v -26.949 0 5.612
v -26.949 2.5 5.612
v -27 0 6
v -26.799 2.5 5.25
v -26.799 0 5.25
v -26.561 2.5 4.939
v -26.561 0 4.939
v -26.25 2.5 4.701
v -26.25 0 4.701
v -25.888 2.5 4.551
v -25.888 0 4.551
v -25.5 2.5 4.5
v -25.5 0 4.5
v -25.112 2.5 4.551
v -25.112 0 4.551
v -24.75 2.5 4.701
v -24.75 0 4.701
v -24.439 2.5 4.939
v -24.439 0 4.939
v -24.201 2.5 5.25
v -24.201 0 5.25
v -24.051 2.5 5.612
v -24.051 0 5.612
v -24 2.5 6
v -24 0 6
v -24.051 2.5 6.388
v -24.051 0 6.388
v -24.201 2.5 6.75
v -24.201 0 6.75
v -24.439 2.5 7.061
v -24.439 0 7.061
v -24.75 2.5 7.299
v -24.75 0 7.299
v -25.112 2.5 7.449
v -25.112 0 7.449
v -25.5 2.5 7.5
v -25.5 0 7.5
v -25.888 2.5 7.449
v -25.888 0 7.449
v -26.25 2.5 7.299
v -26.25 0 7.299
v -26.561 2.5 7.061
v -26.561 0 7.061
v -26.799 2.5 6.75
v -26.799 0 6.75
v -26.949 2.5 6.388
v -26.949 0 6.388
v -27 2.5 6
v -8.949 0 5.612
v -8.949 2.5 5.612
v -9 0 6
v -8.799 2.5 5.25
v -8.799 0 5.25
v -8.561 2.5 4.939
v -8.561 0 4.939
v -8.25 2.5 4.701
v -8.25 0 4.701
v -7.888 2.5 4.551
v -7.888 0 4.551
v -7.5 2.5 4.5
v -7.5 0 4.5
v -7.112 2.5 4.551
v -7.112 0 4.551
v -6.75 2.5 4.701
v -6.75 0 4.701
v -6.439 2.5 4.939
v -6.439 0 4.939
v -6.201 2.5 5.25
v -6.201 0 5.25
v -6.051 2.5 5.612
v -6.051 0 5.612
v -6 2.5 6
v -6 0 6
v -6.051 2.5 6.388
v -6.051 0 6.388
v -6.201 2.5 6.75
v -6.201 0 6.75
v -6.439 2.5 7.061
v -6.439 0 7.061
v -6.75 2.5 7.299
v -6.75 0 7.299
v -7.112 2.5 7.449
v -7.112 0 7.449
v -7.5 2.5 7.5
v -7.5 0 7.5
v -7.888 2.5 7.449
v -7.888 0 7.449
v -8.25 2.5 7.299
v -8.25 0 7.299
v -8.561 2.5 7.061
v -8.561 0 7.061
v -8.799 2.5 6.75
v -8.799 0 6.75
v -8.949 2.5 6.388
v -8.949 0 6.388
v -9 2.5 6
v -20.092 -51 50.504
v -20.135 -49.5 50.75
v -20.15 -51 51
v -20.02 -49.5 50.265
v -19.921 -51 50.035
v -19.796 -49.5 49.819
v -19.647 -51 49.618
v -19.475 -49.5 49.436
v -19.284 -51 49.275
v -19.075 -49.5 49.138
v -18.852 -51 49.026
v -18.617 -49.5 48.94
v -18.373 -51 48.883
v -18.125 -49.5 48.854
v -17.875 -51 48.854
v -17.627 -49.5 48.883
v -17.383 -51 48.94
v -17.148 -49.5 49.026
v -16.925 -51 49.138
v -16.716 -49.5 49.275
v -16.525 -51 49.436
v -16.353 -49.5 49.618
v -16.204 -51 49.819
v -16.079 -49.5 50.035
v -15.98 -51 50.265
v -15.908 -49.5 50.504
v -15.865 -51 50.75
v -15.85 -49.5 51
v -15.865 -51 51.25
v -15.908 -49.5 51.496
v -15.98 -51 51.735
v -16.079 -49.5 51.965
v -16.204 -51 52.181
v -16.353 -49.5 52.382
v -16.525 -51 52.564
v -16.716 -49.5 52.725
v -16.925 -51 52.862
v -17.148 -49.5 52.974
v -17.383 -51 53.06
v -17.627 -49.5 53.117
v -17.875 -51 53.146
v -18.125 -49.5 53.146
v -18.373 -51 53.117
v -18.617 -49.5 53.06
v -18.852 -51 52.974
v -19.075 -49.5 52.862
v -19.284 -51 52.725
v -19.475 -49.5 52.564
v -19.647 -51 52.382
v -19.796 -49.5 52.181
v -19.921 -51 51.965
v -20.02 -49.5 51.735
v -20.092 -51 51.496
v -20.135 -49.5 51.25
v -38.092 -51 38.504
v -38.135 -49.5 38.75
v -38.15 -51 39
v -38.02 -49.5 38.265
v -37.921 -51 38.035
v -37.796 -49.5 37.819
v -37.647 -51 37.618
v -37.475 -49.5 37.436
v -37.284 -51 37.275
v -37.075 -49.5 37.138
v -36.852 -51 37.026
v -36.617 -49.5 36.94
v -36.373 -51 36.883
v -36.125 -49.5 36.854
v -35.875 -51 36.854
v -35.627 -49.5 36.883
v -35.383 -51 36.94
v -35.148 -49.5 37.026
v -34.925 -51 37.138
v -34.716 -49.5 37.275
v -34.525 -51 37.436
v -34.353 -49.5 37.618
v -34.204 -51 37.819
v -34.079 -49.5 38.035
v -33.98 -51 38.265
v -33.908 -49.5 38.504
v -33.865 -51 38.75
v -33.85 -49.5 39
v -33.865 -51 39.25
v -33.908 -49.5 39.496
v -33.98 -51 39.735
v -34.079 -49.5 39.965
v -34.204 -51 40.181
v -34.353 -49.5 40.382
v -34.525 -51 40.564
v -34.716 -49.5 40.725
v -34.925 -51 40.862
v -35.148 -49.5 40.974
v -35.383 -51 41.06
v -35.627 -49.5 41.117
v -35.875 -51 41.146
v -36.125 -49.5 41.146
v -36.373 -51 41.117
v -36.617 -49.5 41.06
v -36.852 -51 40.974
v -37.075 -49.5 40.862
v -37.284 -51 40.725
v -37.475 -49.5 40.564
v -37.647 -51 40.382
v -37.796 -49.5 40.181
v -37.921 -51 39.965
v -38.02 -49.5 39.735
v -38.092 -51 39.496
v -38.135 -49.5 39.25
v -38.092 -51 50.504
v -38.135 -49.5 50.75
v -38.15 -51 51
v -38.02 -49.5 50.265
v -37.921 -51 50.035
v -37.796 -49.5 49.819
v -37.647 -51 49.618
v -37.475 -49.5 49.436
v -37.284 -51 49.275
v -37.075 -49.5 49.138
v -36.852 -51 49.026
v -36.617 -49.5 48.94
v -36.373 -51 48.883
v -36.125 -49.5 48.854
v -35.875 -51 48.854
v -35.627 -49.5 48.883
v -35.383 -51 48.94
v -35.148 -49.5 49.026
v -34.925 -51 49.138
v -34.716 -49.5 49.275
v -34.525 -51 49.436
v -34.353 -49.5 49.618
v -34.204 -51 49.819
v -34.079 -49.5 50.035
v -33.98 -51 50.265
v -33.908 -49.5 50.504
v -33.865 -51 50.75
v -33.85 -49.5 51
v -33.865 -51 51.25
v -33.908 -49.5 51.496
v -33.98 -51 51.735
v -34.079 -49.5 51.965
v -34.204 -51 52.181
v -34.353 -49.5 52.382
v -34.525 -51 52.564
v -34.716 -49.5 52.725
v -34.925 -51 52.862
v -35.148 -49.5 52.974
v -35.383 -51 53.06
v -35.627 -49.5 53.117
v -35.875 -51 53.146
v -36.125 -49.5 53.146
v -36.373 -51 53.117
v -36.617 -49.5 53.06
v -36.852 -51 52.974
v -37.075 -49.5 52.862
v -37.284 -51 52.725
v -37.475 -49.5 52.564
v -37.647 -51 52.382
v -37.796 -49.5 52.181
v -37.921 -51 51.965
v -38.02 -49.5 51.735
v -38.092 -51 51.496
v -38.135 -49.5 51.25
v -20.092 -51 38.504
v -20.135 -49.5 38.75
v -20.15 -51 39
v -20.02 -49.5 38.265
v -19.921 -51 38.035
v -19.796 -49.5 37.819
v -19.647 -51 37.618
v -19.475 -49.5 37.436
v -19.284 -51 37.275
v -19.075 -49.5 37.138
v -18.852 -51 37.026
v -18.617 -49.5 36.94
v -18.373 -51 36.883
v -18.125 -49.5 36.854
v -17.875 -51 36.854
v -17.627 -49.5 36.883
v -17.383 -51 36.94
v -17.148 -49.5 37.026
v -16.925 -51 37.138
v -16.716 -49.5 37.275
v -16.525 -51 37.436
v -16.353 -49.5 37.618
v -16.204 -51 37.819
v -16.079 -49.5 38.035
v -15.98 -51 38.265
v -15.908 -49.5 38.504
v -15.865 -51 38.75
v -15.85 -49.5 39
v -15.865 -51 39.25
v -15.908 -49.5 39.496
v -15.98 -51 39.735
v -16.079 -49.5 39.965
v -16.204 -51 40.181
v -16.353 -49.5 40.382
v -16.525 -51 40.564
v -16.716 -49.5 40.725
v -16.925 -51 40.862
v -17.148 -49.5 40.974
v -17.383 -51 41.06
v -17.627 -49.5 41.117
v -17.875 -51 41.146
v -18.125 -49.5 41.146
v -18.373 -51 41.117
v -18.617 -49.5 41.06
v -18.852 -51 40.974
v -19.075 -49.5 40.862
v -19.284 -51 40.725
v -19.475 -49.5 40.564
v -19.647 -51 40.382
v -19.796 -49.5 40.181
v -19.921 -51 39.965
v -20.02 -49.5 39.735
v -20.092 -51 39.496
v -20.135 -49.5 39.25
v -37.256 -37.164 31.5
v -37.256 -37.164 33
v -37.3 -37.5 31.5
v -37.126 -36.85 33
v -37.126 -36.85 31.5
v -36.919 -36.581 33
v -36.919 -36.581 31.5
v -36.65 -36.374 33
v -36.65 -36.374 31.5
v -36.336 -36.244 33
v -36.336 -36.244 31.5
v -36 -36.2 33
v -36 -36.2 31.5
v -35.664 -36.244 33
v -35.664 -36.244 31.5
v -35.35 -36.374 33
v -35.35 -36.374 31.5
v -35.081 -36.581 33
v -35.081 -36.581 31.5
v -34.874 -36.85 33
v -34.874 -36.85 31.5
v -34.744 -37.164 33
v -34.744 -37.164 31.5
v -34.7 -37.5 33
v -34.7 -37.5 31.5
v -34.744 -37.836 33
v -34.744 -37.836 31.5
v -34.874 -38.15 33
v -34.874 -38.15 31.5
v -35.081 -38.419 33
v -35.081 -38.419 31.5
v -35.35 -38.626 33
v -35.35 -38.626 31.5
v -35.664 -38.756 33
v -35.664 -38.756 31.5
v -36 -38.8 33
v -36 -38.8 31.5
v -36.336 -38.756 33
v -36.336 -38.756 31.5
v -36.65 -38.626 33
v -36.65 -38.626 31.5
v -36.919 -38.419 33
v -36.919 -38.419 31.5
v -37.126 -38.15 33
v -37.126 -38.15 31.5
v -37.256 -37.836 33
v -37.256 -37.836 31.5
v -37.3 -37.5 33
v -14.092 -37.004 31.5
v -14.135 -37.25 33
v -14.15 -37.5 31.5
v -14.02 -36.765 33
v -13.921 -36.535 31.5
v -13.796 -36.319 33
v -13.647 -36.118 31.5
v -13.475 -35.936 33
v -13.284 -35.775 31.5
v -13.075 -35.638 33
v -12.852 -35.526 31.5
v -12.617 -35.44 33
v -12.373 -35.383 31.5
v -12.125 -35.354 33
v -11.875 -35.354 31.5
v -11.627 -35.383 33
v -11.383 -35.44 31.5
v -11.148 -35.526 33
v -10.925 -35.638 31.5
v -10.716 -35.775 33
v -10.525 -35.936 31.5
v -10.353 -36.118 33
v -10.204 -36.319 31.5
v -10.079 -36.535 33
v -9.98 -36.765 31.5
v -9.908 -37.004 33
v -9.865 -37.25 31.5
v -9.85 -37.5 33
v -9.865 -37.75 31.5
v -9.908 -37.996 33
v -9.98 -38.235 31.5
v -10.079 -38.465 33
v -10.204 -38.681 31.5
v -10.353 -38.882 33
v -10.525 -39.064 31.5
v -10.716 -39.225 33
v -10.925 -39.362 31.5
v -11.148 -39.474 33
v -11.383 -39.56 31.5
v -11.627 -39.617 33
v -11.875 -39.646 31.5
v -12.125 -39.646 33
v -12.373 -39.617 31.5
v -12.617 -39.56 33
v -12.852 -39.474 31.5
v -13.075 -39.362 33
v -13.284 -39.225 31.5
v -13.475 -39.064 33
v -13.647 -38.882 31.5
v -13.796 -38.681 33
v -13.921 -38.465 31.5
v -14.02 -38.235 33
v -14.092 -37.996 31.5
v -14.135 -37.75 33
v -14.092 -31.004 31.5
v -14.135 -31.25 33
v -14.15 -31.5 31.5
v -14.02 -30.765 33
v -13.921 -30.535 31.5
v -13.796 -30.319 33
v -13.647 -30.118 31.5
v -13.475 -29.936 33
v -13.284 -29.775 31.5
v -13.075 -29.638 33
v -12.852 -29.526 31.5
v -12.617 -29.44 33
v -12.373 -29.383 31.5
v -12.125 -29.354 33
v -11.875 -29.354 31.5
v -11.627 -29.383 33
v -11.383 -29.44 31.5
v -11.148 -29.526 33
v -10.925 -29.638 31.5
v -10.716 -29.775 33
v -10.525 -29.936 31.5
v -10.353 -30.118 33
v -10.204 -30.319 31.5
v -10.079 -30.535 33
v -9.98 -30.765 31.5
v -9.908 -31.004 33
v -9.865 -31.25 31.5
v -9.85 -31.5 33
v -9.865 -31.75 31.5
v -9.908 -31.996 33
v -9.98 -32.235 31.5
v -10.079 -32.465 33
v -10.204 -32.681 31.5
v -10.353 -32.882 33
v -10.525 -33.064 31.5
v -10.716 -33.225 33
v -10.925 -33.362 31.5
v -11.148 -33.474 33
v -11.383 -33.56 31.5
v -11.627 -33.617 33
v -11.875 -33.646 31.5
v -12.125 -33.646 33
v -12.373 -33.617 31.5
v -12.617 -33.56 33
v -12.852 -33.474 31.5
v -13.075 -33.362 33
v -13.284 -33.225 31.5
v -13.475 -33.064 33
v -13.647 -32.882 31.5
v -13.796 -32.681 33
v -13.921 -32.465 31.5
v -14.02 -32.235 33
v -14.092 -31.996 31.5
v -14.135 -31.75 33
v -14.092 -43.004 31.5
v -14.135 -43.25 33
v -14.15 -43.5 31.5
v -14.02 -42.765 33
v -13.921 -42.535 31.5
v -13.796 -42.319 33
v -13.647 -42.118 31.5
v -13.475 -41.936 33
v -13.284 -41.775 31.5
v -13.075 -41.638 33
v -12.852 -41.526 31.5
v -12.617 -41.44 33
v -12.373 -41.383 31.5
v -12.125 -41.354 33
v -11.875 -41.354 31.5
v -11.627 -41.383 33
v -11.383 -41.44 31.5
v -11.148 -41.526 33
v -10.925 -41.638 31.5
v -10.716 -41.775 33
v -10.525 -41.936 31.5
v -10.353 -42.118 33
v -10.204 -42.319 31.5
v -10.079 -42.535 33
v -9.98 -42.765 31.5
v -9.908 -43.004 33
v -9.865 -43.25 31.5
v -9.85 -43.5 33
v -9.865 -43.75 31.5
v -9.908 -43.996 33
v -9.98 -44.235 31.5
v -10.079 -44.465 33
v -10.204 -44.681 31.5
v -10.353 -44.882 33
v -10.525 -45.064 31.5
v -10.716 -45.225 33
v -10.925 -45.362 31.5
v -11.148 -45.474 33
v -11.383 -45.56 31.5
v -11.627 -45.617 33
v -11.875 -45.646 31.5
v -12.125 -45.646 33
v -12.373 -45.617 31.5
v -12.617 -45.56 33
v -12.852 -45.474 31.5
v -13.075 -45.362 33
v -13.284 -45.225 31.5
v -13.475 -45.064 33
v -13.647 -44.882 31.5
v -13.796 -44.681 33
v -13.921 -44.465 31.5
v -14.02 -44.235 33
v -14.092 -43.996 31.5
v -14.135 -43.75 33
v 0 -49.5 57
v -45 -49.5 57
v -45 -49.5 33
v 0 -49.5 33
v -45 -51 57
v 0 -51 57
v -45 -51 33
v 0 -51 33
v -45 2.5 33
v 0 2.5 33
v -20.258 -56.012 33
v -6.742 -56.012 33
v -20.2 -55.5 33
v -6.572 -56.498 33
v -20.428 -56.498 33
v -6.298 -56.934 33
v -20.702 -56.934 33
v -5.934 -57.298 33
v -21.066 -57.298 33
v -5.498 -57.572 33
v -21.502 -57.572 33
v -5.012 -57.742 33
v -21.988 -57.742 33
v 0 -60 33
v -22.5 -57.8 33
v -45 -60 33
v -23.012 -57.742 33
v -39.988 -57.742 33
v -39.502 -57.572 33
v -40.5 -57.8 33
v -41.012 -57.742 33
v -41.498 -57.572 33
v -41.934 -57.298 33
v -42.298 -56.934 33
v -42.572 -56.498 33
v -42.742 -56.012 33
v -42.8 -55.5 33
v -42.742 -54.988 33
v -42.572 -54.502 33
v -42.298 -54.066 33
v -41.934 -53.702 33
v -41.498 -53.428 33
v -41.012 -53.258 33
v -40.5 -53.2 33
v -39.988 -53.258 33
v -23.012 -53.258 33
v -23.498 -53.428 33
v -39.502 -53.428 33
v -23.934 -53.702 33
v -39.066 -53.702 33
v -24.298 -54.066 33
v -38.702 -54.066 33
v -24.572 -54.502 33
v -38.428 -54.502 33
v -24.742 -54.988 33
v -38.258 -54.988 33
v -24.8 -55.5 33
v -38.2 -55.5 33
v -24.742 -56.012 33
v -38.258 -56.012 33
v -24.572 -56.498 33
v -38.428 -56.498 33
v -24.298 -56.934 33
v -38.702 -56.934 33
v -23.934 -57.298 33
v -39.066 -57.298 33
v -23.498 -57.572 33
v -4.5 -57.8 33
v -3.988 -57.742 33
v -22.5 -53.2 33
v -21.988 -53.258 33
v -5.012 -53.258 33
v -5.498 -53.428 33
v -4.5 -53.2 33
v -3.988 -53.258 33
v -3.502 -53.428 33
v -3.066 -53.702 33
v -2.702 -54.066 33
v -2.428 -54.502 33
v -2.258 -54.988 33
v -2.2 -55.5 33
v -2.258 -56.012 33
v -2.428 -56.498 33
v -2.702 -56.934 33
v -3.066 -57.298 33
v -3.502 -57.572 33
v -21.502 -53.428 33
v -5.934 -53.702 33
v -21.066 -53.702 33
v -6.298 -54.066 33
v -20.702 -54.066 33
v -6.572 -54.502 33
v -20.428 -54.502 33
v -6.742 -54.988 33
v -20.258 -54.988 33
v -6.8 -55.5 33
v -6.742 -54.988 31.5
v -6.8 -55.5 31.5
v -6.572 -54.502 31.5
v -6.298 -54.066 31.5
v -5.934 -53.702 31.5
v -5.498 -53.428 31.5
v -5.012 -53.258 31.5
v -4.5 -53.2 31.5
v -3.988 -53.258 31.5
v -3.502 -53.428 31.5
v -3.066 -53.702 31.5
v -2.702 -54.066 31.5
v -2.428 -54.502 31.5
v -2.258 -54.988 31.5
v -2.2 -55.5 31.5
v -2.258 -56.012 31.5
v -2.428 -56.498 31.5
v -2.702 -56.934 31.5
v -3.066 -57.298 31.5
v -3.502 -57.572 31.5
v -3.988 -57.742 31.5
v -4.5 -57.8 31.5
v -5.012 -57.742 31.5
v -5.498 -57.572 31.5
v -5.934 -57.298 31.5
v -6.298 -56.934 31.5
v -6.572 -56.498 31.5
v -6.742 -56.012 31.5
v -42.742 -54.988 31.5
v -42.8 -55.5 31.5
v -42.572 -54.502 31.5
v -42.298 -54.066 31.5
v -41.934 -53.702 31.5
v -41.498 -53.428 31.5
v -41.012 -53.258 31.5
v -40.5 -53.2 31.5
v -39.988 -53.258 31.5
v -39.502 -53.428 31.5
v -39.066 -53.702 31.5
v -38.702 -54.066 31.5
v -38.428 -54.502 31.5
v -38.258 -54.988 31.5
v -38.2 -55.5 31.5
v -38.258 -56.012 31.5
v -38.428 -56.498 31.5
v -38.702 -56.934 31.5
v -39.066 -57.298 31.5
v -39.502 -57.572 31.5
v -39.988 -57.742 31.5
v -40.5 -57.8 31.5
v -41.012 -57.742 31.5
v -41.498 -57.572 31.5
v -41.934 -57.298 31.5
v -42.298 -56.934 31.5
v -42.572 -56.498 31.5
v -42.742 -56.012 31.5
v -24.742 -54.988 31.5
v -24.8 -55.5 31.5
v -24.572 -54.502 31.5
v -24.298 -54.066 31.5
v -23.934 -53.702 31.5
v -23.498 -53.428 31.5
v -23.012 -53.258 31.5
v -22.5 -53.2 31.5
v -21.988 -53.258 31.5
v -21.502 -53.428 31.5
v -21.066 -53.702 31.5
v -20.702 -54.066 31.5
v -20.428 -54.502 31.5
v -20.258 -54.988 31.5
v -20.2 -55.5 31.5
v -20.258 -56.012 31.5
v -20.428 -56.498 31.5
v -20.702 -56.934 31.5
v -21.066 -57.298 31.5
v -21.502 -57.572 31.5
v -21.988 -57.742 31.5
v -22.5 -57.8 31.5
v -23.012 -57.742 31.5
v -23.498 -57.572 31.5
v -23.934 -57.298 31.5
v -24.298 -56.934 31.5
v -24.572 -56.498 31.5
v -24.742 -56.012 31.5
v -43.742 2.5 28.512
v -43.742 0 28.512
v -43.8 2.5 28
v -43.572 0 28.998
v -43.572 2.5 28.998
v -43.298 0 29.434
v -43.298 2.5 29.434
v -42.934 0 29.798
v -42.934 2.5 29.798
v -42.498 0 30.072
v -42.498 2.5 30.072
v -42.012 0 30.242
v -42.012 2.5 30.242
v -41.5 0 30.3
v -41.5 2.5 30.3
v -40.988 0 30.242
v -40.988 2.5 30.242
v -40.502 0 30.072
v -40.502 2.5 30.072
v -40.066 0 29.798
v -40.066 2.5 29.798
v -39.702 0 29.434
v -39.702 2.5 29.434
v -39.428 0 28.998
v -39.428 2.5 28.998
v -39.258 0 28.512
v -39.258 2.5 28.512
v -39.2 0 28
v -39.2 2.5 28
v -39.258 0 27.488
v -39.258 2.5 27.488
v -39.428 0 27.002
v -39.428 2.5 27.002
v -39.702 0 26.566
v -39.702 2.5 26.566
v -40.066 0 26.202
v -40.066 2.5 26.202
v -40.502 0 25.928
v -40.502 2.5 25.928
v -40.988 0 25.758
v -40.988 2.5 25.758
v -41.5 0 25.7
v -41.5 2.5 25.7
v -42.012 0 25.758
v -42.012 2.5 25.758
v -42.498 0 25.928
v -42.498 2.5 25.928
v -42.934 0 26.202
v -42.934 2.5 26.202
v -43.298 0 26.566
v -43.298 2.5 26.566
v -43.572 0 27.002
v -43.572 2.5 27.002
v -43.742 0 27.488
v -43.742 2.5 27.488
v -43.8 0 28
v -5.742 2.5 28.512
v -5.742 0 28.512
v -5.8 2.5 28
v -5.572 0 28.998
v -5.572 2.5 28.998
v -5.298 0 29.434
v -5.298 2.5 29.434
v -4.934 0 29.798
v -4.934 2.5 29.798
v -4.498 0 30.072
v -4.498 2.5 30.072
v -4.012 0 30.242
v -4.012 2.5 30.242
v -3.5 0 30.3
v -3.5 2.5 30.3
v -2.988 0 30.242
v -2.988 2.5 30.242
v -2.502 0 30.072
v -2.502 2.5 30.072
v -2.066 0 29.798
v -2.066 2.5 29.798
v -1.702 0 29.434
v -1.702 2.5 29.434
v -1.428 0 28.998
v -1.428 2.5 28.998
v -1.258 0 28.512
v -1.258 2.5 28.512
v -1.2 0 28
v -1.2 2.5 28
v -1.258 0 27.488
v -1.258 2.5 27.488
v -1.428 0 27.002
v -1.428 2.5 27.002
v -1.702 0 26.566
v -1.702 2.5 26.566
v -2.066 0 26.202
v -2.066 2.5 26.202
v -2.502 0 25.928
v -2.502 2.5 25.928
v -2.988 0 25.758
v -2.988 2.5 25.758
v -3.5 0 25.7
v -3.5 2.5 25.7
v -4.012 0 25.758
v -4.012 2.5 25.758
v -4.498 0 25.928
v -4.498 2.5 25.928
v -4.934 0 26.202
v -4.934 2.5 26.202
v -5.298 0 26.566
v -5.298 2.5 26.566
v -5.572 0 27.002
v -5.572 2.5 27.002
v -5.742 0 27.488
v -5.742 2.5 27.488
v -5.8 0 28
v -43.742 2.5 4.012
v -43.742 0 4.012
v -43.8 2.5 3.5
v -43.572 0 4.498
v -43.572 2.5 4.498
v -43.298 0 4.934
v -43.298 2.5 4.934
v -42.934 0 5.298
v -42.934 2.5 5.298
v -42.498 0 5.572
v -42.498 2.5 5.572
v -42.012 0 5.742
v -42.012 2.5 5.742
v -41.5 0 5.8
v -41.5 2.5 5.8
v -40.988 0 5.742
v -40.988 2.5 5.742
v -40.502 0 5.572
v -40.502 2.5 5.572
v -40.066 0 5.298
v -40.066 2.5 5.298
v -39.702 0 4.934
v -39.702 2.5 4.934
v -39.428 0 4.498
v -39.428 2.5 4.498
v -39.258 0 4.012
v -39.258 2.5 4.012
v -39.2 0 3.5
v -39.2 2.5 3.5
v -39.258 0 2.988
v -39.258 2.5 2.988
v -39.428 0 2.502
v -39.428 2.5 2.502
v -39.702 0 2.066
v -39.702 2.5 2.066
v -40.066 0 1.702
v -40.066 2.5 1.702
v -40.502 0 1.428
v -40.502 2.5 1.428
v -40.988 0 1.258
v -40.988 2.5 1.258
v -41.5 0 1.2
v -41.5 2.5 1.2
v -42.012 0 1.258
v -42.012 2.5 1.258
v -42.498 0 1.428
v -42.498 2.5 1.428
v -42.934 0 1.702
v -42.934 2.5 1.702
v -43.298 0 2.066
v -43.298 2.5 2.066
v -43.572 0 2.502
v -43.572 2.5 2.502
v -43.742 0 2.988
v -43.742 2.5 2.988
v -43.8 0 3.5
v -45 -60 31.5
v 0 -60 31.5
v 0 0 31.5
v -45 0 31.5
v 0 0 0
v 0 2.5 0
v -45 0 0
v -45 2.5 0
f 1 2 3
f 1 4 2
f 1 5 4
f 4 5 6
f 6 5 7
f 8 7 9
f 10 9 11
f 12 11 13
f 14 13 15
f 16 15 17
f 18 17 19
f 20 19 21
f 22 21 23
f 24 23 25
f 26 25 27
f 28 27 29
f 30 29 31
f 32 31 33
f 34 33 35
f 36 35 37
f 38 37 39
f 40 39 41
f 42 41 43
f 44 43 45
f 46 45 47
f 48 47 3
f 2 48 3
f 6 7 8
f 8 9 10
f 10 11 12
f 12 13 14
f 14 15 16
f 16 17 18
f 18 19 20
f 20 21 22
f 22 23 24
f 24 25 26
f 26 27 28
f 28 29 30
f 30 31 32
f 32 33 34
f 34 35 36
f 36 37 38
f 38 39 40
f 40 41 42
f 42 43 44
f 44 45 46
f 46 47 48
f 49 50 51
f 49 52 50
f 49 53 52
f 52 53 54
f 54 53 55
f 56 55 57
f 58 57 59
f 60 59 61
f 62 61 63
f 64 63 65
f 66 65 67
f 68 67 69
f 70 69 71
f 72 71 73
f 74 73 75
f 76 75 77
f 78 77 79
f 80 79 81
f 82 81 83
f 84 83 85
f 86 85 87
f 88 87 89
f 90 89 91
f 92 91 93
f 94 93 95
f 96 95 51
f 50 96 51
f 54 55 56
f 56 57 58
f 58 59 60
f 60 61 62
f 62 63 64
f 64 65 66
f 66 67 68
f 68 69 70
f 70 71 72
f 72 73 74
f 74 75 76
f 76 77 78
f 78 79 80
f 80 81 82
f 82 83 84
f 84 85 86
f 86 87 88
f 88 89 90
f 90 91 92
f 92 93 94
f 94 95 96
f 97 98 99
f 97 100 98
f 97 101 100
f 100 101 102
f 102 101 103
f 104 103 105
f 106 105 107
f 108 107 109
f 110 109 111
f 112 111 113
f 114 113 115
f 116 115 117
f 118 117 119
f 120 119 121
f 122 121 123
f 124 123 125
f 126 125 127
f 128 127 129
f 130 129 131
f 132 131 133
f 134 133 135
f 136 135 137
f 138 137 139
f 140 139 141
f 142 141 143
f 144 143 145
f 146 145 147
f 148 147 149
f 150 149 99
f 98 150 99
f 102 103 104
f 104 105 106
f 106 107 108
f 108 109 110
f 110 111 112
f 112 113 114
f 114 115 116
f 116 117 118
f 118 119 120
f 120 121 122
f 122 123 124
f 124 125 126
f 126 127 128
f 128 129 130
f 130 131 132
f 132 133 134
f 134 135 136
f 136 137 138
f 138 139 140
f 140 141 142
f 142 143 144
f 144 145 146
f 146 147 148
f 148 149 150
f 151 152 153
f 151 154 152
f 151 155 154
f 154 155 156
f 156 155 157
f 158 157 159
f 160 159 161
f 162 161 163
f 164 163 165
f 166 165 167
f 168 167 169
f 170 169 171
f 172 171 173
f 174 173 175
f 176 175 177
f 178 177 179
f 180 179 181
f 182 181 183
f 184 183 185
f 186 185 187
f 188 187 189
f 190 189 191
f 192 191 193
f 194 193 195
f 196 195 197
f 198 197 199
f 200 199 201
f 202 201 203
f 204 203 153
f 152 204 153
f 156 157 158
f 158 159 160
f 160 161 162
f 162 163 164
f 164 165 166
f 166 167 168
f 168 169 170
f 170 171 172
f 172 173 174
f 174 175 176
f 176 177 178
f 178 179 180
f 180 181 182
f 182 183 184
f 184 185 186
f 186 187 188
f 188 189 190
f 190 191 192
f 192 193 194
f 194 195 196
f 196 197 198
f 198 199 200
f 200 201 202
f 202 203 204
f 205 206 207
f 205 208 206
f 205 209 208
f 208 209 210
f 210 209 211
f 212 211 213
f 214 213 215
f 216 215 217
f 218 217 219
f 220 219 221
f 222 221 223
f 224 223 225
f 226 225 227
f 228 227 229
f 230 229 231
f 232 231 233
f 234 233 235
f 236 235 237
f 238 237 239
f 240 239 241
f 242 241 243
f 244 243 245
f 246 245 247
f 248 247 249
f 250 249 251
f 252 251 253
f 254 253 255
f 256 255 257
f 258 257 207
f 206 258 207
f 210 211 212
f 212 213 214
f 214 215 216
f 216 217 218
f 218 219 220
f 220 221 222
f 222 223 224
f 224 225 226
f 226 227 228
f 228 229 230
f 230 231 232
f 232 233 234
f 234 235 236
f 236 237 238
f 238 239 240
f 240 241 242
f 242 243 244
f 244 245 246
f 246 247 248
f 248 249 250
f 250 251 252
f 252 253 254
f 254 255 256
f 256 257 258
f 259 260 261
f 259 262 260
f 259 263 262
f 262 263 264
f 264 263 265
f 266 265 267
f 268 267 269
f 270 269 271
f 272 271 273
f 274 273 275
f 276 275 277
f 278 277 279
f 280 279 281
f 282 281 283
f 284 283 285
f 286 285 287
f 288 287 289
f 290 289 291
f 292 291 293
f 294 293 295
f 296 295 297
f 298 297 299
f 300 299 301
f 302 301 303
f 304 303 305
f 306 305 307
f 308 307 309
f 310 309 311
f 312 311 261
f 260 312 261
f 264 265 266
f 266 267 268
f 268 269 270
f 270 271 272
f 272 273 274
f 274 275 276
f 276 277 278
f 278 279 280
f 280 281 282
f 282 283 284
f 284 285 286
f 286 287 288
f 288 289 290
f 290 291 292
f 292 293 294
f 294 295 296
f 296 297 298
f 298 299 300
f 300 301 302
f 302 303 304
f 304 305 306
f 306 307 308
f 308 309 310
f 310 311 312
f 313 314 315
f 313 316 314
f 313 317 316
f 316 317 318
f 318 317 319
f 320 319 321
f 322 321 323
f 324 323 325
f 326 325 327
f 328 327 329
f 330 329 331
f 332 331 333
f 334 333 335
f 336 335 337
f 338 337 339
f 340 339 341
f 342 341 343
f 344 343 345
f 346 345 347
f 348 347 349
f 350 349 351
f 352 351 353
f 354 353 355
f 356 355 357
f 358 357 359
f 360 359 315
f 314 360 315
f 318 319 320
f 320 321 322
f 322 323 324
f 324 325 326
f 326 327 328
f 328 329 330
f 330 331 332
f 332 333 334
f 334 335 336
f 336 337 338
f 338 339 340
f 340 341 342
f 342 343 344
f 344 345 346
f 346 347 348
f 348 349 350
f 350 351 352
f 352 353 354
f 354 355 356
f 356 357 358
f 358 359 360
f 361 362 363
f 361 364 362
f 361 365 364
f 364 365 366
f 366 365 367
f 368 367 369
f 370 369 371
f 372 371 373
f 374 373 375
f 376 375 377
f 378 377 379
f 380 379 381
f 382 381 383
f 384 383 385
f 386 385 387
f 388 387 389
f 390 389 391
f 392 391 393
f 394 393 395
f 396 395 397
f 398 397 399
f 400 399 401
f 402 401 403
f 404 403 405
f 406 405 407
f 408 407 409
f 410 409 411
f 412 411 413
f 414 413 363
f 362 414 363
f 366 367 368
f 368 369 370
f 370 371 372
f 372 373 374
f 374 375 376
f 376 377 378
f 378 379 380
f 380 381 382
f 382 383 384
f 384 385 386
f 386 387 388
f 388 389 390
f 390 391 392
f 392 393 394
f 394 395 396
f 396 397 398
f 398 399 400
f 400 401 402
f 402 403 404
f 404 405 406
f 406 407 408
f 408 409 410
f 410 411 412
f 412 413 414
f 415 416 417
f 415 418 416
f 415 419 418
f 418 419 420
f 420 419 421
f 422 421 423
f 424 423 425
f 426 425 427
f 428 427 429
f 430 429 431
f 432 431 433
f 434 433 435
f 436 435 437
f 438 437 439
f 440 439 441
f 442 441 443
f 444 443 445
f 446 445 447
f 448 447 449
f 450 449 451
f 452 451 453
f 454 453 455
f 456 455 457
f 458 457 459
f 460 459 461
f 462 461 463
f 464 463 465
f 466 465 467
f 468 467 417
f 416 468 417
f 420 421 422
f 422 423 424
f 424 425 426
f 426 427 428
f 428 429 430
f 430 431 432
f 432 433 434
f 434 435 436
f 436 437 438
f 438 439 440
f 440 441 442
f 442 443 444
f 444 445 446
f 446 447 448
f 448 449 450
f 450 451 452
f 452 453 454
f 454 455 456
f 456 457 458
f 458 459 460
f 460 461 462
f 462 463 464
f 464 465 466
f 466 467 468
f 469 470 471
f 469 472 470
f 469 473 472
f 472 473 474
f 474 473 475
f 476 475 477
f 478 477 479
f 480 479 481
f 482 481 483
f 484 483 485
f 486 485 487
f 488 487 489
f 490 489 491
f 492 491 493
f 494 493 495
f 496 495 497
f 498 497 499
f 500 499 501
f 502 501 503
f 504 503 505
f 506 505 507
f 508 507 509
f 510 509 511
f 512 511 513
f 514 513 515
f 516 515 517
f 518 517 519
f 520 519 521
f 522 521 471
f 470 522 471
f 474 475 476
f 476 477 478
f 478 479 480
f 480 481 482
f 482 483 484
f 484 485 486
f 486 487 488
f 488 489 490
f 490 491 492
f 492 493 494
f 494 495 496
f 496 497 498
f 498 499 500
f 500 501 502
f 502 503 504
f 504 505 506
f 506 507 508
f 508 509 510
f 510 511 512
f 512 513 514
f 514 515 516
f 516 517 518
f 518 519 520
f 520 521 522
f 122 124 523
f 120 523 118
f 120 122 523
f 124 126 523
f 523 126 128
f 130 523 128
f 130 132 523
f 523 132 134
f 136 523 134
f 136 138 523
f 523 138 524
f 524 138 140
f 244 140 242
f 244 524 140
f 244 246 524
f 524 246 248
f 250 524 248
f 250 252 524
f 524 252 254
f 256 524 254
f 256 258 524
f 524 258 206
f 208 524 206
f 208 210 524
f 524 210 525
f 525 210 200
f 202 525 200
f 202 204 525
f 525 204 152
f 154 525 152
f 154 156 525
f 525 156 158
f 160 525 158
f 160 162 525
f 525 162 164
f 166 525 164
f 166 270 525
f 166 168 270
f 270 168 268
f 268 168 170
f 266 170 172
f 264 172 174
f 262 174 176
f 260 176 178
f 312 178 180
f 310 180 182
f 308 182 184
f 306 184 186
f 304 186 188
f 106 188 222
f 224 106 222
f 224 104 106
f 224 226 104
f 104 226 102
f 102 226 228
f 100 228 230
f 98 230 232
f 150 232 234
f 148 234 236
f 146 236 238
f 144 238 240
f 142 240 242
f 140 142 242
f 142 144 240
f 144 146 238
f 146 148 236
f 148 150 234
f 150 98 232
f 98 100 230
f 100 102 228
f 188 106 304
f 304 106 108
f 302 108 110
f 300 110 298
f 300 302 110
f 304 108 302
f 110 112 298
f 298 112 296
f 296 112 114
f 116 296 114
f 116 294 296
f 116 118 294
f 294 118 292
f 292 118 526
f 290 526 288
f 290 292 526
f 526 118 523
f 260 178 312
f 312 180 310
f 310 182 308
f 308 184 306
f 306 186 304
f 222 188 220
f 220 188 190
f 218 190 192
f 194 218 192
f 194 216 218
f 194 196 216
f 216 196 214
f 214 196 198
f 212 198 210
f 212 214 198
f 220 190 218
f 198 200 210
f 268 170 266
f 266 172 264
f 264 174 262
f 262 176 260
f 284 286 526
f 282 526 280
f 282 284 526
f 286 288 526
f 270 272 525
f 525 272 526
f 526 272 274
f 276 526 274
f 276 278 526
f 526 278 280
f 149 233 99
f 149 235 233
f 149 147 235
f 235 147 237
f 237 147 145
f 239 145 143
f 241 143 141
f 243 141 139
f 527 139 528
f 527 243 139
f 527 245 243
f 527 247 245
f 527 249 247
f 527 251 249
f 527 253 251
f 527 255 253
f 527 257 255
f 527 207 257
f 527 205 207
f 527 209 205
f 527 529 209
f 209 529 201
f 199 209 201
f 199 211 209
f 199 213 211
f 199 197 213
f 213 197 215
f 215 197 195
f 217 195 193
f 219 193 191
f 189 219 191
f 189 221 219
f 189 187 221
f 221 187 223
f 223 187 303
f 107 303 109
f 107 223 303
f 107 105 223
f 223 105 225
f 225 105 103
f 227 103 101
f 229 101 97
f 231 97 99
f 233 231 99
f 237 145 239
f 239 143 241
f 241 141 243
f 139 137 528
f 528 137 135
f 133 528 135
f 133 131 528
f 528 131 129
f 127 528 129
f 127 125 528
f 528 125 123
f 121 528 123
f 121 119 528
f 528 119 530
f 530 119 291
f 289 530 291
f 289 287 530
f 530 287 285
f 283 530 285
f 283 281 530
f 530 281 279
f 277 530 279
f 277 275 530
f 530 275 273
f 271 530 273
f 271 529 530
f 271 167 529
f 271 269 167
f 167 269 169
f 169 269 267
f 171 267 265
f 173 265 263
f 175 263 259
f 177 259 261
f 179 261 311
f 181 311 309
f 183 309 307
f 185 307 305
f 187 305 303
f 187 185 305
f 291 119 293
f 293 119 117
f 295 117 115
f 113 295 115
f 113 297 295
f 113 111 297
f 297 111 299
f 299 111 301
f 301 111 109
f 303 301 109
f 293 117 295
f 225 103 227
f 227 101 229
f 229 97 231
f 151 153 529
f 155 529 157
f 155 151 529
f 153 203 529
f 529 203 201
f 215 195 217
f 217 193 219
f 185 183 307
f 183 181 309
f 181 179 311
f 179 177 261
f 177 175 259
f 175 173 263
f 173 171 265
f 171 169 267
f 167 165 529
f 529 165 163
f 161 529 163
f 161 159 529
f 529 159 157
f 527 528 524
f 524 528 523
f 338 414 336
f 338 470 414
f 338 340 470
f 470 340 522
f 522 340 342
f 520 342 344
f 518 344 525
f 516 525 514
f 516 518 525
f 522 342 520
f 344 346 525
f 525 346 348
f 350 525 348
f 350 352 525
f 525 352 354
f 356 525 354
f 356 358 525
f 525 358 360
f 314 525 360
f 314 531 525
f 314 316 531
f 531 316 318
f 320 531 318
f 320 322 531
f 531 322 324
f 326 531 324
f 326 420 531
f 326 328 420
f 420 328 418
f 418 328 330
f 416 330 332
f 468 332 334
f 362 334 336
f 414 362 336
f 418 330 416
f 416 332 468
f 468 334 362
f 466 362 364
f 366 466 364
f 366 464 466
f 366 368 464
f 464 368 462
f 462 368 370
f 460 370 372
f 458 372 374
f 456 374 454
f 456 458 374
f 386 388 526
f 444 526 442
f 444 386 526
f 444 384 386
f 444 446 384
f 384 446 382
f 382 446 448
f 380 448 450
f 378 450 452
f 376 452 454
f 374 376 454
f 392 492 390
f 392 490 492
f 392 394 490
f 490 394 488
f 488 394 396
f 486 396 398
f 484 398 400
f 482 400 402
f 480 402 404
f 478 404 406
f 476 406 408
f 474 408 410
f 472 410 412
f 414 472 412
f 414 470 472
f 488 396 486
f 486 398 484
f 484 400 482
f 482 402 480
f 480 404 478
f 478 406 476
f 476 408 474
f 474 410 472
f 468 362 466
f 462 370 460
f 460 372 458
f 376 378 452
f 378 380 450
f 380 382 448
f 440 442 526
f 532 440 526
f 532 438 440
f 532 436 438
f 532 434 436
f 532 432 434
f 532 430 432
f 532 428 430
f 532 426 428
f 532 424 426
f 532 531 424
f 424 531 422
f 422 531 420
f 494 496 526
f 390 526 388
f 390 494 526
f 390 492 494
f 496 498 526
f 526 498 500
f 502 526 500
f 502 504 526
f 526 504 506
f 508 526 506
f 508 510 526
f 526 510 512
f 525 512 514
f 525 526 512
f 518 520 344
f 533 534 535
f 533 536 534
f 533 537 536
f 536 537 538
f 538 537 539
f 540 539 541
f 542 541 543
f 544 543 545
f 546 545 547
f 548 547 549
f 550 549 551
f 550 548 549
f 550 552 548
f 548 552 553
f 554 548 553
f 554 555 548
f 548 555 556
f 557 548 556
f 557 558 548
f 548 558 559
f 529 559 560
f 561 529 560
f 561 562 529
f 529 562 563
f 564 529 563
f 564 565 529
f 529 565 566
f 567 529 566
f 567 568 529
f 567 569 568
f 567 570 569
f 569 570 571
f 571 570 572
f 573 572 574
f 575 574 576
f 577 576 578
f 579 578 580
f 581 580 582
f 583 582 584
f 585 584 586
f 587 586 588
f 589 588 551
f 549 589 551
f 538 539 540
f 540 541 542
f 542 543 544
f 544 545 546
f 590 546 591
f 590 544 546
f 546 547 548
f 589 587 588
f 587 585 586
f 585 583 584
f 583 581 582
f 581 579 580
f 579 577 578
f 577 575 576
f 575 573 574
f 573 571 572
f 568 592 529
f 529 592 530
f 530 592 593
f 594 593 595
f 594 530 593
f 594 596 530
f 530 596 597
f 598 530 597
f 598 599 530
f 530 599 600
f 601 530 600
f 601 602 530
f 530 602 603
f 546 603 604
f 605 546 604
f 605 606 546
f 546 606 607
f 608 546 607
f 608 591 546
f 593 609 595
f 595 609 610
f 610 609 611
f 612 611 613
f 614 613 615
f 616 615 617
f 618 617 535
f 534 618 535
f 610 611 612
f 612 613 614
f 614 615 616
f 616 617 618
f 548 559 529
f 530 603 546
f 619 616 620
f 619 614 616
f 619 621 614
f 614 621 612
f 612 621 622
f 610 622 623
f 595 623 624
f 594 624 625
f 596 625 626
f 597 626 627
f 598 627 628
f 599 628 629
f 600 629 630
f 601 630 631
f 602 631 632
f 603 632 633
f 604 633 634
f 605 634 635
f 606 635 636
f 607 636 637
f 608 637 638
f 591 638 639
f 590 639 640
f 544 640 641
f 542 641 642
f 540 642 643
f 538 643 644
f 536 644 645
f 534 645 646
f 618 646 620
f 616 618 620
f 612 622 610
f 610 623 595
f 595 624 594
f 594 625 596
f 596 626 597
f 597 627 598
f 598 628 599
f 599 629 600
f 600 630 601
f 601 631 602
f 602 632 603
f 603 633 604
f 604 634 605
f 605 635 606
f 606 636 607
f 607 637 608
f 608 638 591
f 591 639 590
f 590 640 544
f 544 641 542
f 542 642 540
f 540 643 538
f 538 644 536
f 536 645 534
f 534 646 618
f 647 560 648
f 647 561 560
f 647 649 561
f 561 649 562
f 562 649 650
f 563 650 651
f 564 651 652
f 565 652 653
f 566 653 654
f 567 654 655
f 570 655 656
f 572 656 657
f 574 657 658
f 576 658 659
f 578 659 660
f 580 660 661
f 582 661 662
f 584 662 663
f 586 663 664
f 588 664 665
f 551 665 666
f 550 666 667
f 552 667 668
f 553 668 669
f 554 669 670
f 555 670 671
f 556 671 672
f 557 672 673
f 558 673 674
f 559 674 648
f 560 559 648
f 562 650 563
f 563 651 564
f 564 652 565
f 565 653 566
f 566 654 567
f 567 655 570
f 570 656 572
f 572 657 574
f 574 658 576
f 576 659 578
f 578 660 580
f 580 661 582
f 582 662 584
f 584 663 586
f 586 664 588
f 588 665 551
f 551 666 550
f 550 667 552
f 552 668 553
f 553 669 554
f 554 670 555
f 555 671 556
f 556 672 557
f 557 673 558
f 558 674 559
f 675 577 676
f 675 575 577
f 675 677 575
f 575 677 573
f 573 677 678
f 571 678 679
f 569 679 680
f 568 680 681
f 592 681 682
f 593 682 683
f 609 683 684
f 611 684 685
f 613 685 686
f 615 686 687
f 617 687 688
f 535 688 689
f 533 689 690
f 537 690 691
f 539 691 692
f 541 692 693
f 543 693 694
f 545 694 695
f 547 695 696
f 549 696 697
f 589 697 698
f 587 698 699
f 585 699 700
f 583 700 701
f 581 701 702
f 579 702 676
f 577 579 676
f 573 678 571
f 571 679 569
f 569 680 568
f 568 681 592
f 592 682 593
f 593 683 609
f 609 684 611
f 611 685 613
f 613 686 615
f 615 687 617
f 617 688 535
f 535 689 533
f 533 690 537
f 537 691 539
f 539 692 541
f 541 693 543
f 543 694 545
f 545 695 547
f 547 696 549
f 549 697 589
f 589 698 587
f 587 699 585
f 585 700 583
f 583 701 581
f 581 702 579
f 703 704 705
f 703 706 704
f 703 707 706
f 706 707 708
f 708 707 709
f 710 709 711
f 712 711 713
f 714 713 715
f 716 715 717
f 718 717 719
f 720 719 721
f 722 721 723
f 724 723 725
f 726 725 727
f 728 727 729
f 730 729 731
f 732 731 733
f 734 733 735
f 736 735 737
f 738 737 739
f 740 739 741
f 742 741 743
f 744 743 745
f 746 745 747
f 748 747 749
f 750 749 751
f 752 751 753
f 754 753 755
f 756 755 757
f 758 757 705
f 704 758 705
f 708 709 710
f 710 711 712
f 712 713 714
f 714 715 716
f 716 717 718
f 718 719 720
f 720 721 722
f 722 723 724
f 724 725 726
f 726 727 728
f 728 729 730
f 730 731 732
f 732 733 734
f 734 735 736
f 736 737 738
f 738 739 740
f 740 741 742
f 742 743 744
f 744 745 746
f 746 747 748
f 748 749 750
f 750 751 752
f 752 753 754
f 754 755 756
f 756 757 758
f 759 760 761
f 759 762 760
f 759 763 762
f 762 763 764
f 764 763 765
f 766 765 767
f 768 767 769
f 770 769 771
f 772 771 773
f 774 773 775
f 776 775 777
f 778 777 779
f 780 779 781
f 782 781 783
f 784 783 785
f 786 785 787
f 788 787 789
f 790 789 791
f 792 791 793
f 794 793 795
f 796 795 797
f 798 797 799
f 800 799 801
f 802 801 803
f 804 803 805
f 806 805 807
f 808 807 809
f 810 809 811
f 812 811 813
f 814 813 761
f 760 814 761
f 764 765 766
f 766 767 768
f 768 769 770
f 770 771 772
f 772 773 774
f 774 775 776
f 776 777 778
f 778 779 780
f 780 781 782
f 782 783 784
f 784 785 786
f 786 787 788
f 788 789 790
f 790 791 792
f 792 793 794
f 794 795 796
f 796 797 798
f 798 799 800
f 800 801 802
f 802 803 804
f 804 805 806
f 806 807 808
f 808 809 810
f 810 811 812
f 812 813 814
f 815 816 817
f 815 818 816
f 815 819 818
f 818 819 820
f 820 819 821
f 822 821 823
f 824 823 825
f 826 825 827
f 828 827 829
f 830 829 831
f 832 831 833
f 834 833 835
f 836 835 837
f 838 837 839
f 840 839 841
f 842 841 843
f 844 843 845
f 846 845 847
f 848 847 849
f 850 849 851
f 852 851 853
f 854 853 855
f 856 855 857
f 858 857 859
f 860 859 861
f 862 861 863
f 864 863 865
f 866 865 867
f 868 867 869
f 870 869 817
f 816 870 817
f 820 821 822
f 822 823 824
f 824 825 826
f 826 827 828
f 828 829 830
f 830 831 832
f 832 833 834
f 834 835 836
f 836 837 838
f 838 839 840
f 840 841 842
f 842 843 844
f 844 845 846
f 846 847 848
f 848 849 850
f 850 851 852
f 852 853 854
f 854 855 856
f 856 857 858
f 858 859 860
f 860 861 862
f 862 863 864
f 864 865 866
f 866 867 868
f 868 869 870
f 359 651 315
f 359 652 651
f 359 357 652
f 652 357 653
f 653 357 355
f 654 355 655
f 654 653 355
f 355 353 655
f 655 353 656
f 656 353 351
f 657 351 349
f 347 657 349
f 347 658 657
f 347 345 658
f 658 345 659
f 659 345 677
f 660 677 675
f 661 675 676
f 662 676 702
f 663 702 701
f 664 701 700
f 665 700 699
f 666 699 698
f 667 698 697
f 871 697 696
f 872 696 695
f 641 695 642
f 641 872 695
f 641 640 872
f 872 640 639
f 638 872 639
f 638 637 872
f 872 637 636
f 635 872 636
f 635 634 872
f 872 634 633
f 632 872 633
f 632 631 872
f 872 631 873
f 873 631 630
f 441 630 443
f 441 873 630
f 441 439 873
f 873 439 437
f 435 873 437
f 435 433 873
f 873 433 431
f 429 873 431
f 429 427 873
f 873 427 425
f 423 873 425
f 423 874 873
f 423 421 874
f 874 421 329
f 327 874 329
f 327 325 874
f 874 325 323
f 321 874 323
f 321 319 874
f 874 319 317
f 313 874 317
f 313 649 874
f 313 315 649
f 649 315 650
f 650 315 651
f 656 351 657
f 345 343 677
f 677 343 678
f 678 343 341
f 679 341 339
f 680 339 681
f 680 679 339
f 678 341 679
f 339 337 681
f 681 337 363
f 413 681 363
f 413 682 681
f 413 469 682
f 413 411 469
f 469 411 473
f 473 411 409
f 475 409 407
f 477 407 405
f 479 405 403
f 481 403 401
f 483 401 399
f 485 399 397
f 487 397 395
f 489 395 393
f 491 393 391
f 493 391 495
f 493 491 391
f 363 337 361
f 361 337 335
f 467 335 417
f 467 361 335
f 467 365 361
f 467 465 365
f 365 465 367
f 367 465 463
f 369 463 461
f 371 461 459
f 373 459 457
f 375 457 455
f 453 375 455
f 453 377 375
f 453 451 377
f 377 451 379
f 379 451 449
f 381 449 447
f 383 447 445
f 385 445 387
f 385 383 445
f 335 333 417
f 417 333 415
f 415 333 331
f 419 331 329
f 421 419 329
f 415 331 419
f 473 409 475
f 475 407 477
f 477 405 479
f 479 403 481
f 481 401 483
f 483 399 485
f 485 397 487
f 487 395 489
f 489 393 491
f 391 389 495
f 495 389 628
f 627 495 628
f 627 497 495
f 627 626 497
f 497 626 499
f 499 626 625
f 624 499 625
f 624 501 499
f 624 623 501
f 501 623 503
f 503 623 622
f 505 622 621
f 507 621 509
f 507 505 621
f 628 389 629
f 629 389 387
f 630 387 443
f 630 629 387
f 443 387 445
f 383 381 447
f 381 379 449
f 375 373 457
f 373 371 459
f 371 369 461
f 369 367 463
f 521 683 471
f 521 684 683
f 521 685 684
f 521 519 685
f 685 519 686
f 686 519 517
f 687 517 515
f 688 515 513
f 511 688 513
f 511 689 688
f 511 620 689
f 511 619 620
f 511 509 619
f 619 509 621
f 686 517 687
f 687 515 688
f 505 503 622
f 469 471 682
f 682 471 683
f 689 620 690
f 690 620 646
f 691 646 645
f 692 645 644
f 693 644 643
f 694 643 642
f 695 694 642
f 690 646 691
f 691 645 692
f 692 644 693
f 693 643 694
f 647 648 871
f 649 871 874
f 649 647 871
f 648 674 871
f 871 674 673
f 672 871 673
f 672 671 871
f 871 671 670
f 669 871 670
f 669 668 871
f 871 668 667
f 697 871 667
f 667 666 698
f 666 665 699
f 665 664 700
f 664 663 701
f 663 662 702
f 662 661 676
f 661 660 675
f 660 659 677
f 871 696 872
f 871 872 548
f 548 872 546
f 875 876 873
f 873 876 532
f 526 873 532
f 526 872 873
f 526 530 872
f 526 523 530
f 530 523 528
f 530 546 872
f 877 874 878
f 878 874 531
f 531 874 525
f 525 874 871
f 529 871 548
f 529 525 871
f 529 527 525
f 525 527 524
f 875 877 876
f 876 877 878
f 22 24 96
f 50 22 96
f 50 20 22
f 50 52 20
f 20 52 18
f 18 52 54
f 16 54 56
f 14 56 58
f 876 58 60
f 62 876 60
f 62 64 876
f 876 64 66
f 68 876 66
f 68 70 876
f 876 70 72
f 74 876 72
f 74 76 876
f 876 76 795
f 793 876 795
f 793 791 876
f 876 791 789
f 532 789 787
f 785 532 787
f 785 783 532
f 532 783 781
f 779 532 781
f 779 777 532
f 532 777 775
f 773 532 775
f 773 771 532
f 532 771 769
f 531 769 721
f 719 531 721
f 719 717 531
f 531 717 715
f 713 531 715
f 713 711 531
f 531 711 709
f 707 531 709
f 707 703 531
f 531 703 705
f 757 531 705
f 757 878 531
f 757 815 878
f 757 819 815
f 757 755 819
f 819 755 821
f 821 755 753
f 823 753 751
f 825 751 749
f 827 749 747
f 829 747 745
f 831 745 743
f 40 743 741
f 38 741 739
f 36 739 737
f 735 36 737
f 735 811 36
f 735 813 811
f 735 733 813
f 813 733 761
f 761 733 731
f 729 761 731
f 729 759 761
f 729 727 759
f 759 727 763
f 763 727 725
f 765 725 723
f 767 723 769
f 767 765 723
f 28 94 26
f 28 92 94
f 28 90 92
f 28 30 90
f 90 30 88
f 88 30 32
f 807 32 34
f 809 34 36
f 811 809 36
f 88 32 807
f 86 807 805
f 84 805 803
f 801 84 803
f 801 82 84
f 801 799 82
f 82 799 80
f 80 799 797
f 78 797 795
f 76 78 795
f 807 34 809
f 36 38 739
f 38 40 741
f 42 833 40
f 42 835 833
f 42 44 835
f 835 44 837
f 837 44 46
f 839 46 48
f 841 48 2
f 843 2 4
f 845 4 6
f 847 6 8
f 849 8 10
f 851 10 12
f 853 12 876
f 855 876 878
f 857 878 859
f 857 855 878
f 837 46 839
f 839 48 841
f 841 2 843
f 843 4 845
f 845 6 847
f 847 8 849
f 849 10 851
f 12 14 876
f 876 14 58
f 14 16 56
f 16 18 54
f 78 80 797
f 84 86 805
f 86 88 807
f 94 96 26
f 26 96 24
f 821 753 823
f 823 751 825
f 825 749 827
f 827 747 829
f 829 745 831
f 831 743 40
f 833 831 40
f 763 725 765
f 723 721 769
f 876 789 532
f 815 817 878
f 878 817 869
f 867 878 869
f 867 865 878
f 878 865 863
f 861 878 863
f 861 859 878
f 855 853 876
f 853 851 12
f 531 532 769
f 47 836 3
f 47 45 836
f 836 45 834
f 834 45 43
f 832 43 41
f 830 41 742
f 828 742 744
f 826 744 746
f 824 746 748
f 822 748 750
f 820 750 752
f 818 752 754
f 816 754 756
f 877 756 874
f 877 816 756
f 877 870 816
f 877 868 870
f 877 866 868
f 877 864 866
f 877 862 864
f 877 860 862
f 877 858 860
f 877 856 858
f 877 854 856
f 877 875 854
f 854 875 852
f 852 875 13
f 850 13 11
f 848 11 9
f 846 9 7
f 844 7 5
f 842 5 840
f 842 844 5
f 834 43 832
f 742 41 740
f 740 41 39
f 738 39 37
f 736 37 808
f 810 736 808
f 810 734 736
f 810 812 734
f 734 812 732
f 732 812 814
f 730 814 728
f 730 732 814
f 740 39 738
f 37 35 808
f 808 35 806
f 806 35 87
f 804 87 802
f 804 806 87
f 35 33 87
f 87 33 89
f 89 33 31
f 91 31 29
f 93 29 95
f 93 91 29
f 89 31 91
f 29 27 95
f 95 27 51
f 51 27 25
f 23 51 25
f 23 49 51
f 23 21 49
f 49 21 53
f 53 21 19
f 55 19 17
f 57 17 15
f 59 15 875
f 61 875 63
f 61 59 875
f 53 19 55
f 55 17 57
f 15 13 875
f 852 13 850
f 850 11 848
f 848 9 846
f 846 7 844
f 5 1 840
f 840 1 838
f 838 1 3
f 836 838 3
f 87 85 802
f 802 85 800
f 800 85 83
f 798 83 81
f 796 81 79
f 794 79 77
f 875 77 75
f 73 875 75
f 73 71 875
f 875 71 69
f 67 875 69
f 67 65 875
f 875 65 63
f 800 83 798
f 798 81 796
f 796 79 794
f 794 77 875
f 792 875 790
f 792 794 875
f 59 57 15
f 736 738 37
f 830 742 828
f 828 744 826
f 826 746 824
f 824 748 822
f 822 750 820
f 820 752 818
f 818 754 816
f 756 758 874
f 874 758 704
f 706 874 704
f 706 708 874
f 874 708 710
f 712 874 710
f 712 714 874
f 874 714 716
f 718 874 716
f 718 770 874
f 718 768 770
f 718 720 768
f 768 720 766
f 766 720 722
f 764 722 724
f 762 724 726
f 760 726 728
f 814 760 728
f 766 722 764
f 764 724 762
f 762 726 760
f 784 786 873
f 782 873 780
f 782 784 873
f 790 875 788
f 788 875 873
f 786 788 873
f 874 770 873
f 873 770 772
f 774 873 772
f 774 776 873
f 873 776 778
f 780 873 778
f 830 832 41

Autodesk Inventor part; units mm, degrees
ref_plane "YZ Plane" through (0, 0, 0) normal (1, 0, 0) x (0, 1, 0)
ref_plane "XZ Plane" through (0, 0, 0) normal (0, 1, 0) x (-1, 0, 0)
ref_plane "XY Plane" through (0, 0, 0) normal (0, 0, 1) x (1, 0, 0)
sketch "Sketch1" plane through (0, 0, 0) normal (0, 1, 0) x (-1, 0, 0)
  line L0 (0, 0) -> (45, 0)
  line L1 (45, 0) -> (45, 31.5)
  line L2 (45, 31.5) -> (0, 31.5)
  line L3 (0, 31.5) -> (0, 0)
  dimension "d0" = 45
  dimension "d1" = 31.5
extrude "Extrusion1" add sketch "Sketch1" along normal blind 2.5
sketch "Sketch2" plane through (0, 0, 0) normal (0, -1, 0) x (1, 0, 0)
  line L0 (-45, 0) -> (-45, 31.5) projected
  line L1 (-45, 31.5) -> (0, 31.5)
  line L2 (0, 31.5) -> (0, 33)
  line L3 (0, 33) -> (-45, 33)
  line L4 (-45, 33) -> (-45, 31.5)
  point P0 (0, 0)
  dimension "d4" = 45
  dimension "d5" = 1.5
extrude "Extrusion2" add sketch "Sketch2" along normal blind 60 and the other way blind 2.5
sketch "Sketch4" plane through (0, 0, 0) normal (0, -1, 0) x (1, 0, 0)
  circle A0 centre (-3.5, 28) radius 2.3
  line L0 (-45, 31.5) -> (0, 31.5) projected
  line L1 (0, 31.5) -> (0, 0) projected
  line L2 (0, 0) -> (-45, 0) projected
  circle A1 centre (-41.5, 28) radius 2.3
  line L3 (-45, 0) -> (-45, 31.5) projected
  circle A2 centre (-41.5, 3.5) radius 2.3
  dimension "d10" = 4.6
  dimension "d11" = 3.5
  dimension "d12" = 3.5
  dimension "d16" = 4.6
  dimension "d17" = 3.5
  dimension "d18" = 3.5
  dimension "d19" = 4.6
  dimension "d20" = 3.5
  dimension "d21" = 3.5
hole "Hole1" at (-3.5, 0, 28) at (-41.5, 0, 28) at (-41.5, 0, 3.5) direction (0, 1, 0) diameter 4.6 end through all
sketch "Sketch5" plane through (-45, -60, 33) normal (0, 0, 1) x (1, 0, 0)
  circle A0 centre (4.5, 4.5) radius 2.15
  line L0 (45, 0) -> (0, 0) projected
  line L1 (0, 62.5) -> (0, 0) projected
  circle A1 centre (40.5, 4.5) radius 2.15
  line L2 (45, 62.5) -> (45, 0) projected
  circle A2 centre (22.5, 4.5) radius 2.15
  point P0 (45, 60)
  dimension "d29" = 4.3
  dimension "d30" = 4.5
  dimension "d31" = 4.5
  dimension "d32" = 4.3
  dimension "d33" = 4.5
  dimension "d34" = 4.5
  dimension "d35" = 4.3
hole "Hole2" at (-40.5, -55.5, 33) at (-4.5, -55.5, 33) at (-22.5, -55.5, 33) direction (0, 0, -1) diameter 4.6 end through all
sketch "Sketch6" plane through (-45, -60, 33) normal (0, 0, 1) x (1, 0, 0)
  circle A0 centre (4.5, 4.5) radius 2.3 projected
  line L0 (4.5, 4.5) -> (4.5, 9)
  line L1 (0, 0) -> (0, 60) projected
  line L2 (0, 9) -> (45, 9)
  line L3 (45, 9) -> (45, 10.5)
  line L4 (45, 60) -> (45, 0) projected
  line L5 (45, 10.5) -> (0, 10.5)
  line L6 (0, 10.5) -> (0, 9)
  dimension "d43" = 4.5
  dimension "d44" = 1.5
extrude "Extrusion3" add sketch "Sketch6" along normal blind 24 contours L2 L1 L5 L3
sketch "Sketch7" plane through (-45, 2.5, 33) normal (0, 0, 1) x (1, 0, 0)
  circle A0 centre (9, -40) radius 1.3
  line L0 (0, 0) -> (0, -52) projected
  line L1 (45, -52) -> (0, -52) projected
  circle A1 centre (33, -40) radius 2.15
  circle A2 centre (33, -34) radius 2.15
  circle A3 centre (33, -46) radius 2.15
  point P0 (45, -2.5)
  dimension "d47" = 2.6
  dimension "d48" = 9
  dimension "d49" = 12
  dimension "d50" = 4.3
  dimension "d51" = 24
  dimension "d52" = 4.3
  dimension "d53" = 6
  dimension "d54" = 4.3
  dimension "d55" = 6
hole "Hole3" at (-12, -31.5, 33) at (-12, -37.5, 33) at (-12, -43.5, 33) direction (0, 0, -1) diameter 4.3 end through all
sketch "Sketch8" plane through (-45, 2.5, 33) normal (0, 0, 1) x (1, 0, 0)
  circle A0 centre (33, -40) radius 2.15 projected
  line L0 (0, 0) -> (0, -52) projected
  circle A1 centre (9, -40) radius 1.3
  point P0 (45, -2.5)
  dimension "d89" = 2.6
  dimension "d91" = 9
hole "Hole4" at (-12, -37.5, 33) at (-36, -37.5, 33) direction (0, 0, -1) diameter 2.6 end through all
sketch "Sketch9" plane through (-45, -49.5, 33) normal (0, 1, 0) x (1, 0, 0)
  circle A0 centre (9, -6) radius 2.15
  line L0 (0, 0) -> (45, 0) projected
  line L1 (0, 0) -> (0, -24) projected
  circle A1 centre (9, -18) radius 2.15
  circle A2 centre (27, -18) radius 2.15
  circle A3 centre (27, -6) radius 2.15
  point P0 (45, 33)
  dimension "d73" = 4.3
  dimension "d74" = 6
  dimension "d75" = 9
  dimension "d76" = 4.3
  dimension "d77" = 12
  dimension "d78" = 4.3
  dimension "d79" = 18
  dimension "d80" = 4.3
  dimension "d104" = 18
  dimension "d105" = 9
hole "Hole5" at (-36, -49.5, 39) at (-36, -49.5, 51) at (-18, -49.5, 51) at (-18, -49.5, 39) direction (0, -1, 0) diameter 4.3 end through all
sketch "Sketch10" plane through (0, 2.5, 0) normal (0, 1, 0) x (1, 0, 0)
  circle A0 centre (-7.5, -6) radius 1.5
  line L0 (0, 0) -> (-45, 0) projected
  line L1 (0, -33) -> (0, 0) projected
  circle A1 centre (-25.5, -6) radius 1.5
  dimension "d92" = 3
  dimension "d93" = 6
  dimension "d94" = 7.5
  dimension "d95" = 3
  dimension "d96" = 18
hole "Hole6" at (-25.5, 2.5, 6) at (-7.5, 2.5, 6) direction (0, -1, 0) diameter 3 end through all
properties part number "TrolleyLeftPlate1"
